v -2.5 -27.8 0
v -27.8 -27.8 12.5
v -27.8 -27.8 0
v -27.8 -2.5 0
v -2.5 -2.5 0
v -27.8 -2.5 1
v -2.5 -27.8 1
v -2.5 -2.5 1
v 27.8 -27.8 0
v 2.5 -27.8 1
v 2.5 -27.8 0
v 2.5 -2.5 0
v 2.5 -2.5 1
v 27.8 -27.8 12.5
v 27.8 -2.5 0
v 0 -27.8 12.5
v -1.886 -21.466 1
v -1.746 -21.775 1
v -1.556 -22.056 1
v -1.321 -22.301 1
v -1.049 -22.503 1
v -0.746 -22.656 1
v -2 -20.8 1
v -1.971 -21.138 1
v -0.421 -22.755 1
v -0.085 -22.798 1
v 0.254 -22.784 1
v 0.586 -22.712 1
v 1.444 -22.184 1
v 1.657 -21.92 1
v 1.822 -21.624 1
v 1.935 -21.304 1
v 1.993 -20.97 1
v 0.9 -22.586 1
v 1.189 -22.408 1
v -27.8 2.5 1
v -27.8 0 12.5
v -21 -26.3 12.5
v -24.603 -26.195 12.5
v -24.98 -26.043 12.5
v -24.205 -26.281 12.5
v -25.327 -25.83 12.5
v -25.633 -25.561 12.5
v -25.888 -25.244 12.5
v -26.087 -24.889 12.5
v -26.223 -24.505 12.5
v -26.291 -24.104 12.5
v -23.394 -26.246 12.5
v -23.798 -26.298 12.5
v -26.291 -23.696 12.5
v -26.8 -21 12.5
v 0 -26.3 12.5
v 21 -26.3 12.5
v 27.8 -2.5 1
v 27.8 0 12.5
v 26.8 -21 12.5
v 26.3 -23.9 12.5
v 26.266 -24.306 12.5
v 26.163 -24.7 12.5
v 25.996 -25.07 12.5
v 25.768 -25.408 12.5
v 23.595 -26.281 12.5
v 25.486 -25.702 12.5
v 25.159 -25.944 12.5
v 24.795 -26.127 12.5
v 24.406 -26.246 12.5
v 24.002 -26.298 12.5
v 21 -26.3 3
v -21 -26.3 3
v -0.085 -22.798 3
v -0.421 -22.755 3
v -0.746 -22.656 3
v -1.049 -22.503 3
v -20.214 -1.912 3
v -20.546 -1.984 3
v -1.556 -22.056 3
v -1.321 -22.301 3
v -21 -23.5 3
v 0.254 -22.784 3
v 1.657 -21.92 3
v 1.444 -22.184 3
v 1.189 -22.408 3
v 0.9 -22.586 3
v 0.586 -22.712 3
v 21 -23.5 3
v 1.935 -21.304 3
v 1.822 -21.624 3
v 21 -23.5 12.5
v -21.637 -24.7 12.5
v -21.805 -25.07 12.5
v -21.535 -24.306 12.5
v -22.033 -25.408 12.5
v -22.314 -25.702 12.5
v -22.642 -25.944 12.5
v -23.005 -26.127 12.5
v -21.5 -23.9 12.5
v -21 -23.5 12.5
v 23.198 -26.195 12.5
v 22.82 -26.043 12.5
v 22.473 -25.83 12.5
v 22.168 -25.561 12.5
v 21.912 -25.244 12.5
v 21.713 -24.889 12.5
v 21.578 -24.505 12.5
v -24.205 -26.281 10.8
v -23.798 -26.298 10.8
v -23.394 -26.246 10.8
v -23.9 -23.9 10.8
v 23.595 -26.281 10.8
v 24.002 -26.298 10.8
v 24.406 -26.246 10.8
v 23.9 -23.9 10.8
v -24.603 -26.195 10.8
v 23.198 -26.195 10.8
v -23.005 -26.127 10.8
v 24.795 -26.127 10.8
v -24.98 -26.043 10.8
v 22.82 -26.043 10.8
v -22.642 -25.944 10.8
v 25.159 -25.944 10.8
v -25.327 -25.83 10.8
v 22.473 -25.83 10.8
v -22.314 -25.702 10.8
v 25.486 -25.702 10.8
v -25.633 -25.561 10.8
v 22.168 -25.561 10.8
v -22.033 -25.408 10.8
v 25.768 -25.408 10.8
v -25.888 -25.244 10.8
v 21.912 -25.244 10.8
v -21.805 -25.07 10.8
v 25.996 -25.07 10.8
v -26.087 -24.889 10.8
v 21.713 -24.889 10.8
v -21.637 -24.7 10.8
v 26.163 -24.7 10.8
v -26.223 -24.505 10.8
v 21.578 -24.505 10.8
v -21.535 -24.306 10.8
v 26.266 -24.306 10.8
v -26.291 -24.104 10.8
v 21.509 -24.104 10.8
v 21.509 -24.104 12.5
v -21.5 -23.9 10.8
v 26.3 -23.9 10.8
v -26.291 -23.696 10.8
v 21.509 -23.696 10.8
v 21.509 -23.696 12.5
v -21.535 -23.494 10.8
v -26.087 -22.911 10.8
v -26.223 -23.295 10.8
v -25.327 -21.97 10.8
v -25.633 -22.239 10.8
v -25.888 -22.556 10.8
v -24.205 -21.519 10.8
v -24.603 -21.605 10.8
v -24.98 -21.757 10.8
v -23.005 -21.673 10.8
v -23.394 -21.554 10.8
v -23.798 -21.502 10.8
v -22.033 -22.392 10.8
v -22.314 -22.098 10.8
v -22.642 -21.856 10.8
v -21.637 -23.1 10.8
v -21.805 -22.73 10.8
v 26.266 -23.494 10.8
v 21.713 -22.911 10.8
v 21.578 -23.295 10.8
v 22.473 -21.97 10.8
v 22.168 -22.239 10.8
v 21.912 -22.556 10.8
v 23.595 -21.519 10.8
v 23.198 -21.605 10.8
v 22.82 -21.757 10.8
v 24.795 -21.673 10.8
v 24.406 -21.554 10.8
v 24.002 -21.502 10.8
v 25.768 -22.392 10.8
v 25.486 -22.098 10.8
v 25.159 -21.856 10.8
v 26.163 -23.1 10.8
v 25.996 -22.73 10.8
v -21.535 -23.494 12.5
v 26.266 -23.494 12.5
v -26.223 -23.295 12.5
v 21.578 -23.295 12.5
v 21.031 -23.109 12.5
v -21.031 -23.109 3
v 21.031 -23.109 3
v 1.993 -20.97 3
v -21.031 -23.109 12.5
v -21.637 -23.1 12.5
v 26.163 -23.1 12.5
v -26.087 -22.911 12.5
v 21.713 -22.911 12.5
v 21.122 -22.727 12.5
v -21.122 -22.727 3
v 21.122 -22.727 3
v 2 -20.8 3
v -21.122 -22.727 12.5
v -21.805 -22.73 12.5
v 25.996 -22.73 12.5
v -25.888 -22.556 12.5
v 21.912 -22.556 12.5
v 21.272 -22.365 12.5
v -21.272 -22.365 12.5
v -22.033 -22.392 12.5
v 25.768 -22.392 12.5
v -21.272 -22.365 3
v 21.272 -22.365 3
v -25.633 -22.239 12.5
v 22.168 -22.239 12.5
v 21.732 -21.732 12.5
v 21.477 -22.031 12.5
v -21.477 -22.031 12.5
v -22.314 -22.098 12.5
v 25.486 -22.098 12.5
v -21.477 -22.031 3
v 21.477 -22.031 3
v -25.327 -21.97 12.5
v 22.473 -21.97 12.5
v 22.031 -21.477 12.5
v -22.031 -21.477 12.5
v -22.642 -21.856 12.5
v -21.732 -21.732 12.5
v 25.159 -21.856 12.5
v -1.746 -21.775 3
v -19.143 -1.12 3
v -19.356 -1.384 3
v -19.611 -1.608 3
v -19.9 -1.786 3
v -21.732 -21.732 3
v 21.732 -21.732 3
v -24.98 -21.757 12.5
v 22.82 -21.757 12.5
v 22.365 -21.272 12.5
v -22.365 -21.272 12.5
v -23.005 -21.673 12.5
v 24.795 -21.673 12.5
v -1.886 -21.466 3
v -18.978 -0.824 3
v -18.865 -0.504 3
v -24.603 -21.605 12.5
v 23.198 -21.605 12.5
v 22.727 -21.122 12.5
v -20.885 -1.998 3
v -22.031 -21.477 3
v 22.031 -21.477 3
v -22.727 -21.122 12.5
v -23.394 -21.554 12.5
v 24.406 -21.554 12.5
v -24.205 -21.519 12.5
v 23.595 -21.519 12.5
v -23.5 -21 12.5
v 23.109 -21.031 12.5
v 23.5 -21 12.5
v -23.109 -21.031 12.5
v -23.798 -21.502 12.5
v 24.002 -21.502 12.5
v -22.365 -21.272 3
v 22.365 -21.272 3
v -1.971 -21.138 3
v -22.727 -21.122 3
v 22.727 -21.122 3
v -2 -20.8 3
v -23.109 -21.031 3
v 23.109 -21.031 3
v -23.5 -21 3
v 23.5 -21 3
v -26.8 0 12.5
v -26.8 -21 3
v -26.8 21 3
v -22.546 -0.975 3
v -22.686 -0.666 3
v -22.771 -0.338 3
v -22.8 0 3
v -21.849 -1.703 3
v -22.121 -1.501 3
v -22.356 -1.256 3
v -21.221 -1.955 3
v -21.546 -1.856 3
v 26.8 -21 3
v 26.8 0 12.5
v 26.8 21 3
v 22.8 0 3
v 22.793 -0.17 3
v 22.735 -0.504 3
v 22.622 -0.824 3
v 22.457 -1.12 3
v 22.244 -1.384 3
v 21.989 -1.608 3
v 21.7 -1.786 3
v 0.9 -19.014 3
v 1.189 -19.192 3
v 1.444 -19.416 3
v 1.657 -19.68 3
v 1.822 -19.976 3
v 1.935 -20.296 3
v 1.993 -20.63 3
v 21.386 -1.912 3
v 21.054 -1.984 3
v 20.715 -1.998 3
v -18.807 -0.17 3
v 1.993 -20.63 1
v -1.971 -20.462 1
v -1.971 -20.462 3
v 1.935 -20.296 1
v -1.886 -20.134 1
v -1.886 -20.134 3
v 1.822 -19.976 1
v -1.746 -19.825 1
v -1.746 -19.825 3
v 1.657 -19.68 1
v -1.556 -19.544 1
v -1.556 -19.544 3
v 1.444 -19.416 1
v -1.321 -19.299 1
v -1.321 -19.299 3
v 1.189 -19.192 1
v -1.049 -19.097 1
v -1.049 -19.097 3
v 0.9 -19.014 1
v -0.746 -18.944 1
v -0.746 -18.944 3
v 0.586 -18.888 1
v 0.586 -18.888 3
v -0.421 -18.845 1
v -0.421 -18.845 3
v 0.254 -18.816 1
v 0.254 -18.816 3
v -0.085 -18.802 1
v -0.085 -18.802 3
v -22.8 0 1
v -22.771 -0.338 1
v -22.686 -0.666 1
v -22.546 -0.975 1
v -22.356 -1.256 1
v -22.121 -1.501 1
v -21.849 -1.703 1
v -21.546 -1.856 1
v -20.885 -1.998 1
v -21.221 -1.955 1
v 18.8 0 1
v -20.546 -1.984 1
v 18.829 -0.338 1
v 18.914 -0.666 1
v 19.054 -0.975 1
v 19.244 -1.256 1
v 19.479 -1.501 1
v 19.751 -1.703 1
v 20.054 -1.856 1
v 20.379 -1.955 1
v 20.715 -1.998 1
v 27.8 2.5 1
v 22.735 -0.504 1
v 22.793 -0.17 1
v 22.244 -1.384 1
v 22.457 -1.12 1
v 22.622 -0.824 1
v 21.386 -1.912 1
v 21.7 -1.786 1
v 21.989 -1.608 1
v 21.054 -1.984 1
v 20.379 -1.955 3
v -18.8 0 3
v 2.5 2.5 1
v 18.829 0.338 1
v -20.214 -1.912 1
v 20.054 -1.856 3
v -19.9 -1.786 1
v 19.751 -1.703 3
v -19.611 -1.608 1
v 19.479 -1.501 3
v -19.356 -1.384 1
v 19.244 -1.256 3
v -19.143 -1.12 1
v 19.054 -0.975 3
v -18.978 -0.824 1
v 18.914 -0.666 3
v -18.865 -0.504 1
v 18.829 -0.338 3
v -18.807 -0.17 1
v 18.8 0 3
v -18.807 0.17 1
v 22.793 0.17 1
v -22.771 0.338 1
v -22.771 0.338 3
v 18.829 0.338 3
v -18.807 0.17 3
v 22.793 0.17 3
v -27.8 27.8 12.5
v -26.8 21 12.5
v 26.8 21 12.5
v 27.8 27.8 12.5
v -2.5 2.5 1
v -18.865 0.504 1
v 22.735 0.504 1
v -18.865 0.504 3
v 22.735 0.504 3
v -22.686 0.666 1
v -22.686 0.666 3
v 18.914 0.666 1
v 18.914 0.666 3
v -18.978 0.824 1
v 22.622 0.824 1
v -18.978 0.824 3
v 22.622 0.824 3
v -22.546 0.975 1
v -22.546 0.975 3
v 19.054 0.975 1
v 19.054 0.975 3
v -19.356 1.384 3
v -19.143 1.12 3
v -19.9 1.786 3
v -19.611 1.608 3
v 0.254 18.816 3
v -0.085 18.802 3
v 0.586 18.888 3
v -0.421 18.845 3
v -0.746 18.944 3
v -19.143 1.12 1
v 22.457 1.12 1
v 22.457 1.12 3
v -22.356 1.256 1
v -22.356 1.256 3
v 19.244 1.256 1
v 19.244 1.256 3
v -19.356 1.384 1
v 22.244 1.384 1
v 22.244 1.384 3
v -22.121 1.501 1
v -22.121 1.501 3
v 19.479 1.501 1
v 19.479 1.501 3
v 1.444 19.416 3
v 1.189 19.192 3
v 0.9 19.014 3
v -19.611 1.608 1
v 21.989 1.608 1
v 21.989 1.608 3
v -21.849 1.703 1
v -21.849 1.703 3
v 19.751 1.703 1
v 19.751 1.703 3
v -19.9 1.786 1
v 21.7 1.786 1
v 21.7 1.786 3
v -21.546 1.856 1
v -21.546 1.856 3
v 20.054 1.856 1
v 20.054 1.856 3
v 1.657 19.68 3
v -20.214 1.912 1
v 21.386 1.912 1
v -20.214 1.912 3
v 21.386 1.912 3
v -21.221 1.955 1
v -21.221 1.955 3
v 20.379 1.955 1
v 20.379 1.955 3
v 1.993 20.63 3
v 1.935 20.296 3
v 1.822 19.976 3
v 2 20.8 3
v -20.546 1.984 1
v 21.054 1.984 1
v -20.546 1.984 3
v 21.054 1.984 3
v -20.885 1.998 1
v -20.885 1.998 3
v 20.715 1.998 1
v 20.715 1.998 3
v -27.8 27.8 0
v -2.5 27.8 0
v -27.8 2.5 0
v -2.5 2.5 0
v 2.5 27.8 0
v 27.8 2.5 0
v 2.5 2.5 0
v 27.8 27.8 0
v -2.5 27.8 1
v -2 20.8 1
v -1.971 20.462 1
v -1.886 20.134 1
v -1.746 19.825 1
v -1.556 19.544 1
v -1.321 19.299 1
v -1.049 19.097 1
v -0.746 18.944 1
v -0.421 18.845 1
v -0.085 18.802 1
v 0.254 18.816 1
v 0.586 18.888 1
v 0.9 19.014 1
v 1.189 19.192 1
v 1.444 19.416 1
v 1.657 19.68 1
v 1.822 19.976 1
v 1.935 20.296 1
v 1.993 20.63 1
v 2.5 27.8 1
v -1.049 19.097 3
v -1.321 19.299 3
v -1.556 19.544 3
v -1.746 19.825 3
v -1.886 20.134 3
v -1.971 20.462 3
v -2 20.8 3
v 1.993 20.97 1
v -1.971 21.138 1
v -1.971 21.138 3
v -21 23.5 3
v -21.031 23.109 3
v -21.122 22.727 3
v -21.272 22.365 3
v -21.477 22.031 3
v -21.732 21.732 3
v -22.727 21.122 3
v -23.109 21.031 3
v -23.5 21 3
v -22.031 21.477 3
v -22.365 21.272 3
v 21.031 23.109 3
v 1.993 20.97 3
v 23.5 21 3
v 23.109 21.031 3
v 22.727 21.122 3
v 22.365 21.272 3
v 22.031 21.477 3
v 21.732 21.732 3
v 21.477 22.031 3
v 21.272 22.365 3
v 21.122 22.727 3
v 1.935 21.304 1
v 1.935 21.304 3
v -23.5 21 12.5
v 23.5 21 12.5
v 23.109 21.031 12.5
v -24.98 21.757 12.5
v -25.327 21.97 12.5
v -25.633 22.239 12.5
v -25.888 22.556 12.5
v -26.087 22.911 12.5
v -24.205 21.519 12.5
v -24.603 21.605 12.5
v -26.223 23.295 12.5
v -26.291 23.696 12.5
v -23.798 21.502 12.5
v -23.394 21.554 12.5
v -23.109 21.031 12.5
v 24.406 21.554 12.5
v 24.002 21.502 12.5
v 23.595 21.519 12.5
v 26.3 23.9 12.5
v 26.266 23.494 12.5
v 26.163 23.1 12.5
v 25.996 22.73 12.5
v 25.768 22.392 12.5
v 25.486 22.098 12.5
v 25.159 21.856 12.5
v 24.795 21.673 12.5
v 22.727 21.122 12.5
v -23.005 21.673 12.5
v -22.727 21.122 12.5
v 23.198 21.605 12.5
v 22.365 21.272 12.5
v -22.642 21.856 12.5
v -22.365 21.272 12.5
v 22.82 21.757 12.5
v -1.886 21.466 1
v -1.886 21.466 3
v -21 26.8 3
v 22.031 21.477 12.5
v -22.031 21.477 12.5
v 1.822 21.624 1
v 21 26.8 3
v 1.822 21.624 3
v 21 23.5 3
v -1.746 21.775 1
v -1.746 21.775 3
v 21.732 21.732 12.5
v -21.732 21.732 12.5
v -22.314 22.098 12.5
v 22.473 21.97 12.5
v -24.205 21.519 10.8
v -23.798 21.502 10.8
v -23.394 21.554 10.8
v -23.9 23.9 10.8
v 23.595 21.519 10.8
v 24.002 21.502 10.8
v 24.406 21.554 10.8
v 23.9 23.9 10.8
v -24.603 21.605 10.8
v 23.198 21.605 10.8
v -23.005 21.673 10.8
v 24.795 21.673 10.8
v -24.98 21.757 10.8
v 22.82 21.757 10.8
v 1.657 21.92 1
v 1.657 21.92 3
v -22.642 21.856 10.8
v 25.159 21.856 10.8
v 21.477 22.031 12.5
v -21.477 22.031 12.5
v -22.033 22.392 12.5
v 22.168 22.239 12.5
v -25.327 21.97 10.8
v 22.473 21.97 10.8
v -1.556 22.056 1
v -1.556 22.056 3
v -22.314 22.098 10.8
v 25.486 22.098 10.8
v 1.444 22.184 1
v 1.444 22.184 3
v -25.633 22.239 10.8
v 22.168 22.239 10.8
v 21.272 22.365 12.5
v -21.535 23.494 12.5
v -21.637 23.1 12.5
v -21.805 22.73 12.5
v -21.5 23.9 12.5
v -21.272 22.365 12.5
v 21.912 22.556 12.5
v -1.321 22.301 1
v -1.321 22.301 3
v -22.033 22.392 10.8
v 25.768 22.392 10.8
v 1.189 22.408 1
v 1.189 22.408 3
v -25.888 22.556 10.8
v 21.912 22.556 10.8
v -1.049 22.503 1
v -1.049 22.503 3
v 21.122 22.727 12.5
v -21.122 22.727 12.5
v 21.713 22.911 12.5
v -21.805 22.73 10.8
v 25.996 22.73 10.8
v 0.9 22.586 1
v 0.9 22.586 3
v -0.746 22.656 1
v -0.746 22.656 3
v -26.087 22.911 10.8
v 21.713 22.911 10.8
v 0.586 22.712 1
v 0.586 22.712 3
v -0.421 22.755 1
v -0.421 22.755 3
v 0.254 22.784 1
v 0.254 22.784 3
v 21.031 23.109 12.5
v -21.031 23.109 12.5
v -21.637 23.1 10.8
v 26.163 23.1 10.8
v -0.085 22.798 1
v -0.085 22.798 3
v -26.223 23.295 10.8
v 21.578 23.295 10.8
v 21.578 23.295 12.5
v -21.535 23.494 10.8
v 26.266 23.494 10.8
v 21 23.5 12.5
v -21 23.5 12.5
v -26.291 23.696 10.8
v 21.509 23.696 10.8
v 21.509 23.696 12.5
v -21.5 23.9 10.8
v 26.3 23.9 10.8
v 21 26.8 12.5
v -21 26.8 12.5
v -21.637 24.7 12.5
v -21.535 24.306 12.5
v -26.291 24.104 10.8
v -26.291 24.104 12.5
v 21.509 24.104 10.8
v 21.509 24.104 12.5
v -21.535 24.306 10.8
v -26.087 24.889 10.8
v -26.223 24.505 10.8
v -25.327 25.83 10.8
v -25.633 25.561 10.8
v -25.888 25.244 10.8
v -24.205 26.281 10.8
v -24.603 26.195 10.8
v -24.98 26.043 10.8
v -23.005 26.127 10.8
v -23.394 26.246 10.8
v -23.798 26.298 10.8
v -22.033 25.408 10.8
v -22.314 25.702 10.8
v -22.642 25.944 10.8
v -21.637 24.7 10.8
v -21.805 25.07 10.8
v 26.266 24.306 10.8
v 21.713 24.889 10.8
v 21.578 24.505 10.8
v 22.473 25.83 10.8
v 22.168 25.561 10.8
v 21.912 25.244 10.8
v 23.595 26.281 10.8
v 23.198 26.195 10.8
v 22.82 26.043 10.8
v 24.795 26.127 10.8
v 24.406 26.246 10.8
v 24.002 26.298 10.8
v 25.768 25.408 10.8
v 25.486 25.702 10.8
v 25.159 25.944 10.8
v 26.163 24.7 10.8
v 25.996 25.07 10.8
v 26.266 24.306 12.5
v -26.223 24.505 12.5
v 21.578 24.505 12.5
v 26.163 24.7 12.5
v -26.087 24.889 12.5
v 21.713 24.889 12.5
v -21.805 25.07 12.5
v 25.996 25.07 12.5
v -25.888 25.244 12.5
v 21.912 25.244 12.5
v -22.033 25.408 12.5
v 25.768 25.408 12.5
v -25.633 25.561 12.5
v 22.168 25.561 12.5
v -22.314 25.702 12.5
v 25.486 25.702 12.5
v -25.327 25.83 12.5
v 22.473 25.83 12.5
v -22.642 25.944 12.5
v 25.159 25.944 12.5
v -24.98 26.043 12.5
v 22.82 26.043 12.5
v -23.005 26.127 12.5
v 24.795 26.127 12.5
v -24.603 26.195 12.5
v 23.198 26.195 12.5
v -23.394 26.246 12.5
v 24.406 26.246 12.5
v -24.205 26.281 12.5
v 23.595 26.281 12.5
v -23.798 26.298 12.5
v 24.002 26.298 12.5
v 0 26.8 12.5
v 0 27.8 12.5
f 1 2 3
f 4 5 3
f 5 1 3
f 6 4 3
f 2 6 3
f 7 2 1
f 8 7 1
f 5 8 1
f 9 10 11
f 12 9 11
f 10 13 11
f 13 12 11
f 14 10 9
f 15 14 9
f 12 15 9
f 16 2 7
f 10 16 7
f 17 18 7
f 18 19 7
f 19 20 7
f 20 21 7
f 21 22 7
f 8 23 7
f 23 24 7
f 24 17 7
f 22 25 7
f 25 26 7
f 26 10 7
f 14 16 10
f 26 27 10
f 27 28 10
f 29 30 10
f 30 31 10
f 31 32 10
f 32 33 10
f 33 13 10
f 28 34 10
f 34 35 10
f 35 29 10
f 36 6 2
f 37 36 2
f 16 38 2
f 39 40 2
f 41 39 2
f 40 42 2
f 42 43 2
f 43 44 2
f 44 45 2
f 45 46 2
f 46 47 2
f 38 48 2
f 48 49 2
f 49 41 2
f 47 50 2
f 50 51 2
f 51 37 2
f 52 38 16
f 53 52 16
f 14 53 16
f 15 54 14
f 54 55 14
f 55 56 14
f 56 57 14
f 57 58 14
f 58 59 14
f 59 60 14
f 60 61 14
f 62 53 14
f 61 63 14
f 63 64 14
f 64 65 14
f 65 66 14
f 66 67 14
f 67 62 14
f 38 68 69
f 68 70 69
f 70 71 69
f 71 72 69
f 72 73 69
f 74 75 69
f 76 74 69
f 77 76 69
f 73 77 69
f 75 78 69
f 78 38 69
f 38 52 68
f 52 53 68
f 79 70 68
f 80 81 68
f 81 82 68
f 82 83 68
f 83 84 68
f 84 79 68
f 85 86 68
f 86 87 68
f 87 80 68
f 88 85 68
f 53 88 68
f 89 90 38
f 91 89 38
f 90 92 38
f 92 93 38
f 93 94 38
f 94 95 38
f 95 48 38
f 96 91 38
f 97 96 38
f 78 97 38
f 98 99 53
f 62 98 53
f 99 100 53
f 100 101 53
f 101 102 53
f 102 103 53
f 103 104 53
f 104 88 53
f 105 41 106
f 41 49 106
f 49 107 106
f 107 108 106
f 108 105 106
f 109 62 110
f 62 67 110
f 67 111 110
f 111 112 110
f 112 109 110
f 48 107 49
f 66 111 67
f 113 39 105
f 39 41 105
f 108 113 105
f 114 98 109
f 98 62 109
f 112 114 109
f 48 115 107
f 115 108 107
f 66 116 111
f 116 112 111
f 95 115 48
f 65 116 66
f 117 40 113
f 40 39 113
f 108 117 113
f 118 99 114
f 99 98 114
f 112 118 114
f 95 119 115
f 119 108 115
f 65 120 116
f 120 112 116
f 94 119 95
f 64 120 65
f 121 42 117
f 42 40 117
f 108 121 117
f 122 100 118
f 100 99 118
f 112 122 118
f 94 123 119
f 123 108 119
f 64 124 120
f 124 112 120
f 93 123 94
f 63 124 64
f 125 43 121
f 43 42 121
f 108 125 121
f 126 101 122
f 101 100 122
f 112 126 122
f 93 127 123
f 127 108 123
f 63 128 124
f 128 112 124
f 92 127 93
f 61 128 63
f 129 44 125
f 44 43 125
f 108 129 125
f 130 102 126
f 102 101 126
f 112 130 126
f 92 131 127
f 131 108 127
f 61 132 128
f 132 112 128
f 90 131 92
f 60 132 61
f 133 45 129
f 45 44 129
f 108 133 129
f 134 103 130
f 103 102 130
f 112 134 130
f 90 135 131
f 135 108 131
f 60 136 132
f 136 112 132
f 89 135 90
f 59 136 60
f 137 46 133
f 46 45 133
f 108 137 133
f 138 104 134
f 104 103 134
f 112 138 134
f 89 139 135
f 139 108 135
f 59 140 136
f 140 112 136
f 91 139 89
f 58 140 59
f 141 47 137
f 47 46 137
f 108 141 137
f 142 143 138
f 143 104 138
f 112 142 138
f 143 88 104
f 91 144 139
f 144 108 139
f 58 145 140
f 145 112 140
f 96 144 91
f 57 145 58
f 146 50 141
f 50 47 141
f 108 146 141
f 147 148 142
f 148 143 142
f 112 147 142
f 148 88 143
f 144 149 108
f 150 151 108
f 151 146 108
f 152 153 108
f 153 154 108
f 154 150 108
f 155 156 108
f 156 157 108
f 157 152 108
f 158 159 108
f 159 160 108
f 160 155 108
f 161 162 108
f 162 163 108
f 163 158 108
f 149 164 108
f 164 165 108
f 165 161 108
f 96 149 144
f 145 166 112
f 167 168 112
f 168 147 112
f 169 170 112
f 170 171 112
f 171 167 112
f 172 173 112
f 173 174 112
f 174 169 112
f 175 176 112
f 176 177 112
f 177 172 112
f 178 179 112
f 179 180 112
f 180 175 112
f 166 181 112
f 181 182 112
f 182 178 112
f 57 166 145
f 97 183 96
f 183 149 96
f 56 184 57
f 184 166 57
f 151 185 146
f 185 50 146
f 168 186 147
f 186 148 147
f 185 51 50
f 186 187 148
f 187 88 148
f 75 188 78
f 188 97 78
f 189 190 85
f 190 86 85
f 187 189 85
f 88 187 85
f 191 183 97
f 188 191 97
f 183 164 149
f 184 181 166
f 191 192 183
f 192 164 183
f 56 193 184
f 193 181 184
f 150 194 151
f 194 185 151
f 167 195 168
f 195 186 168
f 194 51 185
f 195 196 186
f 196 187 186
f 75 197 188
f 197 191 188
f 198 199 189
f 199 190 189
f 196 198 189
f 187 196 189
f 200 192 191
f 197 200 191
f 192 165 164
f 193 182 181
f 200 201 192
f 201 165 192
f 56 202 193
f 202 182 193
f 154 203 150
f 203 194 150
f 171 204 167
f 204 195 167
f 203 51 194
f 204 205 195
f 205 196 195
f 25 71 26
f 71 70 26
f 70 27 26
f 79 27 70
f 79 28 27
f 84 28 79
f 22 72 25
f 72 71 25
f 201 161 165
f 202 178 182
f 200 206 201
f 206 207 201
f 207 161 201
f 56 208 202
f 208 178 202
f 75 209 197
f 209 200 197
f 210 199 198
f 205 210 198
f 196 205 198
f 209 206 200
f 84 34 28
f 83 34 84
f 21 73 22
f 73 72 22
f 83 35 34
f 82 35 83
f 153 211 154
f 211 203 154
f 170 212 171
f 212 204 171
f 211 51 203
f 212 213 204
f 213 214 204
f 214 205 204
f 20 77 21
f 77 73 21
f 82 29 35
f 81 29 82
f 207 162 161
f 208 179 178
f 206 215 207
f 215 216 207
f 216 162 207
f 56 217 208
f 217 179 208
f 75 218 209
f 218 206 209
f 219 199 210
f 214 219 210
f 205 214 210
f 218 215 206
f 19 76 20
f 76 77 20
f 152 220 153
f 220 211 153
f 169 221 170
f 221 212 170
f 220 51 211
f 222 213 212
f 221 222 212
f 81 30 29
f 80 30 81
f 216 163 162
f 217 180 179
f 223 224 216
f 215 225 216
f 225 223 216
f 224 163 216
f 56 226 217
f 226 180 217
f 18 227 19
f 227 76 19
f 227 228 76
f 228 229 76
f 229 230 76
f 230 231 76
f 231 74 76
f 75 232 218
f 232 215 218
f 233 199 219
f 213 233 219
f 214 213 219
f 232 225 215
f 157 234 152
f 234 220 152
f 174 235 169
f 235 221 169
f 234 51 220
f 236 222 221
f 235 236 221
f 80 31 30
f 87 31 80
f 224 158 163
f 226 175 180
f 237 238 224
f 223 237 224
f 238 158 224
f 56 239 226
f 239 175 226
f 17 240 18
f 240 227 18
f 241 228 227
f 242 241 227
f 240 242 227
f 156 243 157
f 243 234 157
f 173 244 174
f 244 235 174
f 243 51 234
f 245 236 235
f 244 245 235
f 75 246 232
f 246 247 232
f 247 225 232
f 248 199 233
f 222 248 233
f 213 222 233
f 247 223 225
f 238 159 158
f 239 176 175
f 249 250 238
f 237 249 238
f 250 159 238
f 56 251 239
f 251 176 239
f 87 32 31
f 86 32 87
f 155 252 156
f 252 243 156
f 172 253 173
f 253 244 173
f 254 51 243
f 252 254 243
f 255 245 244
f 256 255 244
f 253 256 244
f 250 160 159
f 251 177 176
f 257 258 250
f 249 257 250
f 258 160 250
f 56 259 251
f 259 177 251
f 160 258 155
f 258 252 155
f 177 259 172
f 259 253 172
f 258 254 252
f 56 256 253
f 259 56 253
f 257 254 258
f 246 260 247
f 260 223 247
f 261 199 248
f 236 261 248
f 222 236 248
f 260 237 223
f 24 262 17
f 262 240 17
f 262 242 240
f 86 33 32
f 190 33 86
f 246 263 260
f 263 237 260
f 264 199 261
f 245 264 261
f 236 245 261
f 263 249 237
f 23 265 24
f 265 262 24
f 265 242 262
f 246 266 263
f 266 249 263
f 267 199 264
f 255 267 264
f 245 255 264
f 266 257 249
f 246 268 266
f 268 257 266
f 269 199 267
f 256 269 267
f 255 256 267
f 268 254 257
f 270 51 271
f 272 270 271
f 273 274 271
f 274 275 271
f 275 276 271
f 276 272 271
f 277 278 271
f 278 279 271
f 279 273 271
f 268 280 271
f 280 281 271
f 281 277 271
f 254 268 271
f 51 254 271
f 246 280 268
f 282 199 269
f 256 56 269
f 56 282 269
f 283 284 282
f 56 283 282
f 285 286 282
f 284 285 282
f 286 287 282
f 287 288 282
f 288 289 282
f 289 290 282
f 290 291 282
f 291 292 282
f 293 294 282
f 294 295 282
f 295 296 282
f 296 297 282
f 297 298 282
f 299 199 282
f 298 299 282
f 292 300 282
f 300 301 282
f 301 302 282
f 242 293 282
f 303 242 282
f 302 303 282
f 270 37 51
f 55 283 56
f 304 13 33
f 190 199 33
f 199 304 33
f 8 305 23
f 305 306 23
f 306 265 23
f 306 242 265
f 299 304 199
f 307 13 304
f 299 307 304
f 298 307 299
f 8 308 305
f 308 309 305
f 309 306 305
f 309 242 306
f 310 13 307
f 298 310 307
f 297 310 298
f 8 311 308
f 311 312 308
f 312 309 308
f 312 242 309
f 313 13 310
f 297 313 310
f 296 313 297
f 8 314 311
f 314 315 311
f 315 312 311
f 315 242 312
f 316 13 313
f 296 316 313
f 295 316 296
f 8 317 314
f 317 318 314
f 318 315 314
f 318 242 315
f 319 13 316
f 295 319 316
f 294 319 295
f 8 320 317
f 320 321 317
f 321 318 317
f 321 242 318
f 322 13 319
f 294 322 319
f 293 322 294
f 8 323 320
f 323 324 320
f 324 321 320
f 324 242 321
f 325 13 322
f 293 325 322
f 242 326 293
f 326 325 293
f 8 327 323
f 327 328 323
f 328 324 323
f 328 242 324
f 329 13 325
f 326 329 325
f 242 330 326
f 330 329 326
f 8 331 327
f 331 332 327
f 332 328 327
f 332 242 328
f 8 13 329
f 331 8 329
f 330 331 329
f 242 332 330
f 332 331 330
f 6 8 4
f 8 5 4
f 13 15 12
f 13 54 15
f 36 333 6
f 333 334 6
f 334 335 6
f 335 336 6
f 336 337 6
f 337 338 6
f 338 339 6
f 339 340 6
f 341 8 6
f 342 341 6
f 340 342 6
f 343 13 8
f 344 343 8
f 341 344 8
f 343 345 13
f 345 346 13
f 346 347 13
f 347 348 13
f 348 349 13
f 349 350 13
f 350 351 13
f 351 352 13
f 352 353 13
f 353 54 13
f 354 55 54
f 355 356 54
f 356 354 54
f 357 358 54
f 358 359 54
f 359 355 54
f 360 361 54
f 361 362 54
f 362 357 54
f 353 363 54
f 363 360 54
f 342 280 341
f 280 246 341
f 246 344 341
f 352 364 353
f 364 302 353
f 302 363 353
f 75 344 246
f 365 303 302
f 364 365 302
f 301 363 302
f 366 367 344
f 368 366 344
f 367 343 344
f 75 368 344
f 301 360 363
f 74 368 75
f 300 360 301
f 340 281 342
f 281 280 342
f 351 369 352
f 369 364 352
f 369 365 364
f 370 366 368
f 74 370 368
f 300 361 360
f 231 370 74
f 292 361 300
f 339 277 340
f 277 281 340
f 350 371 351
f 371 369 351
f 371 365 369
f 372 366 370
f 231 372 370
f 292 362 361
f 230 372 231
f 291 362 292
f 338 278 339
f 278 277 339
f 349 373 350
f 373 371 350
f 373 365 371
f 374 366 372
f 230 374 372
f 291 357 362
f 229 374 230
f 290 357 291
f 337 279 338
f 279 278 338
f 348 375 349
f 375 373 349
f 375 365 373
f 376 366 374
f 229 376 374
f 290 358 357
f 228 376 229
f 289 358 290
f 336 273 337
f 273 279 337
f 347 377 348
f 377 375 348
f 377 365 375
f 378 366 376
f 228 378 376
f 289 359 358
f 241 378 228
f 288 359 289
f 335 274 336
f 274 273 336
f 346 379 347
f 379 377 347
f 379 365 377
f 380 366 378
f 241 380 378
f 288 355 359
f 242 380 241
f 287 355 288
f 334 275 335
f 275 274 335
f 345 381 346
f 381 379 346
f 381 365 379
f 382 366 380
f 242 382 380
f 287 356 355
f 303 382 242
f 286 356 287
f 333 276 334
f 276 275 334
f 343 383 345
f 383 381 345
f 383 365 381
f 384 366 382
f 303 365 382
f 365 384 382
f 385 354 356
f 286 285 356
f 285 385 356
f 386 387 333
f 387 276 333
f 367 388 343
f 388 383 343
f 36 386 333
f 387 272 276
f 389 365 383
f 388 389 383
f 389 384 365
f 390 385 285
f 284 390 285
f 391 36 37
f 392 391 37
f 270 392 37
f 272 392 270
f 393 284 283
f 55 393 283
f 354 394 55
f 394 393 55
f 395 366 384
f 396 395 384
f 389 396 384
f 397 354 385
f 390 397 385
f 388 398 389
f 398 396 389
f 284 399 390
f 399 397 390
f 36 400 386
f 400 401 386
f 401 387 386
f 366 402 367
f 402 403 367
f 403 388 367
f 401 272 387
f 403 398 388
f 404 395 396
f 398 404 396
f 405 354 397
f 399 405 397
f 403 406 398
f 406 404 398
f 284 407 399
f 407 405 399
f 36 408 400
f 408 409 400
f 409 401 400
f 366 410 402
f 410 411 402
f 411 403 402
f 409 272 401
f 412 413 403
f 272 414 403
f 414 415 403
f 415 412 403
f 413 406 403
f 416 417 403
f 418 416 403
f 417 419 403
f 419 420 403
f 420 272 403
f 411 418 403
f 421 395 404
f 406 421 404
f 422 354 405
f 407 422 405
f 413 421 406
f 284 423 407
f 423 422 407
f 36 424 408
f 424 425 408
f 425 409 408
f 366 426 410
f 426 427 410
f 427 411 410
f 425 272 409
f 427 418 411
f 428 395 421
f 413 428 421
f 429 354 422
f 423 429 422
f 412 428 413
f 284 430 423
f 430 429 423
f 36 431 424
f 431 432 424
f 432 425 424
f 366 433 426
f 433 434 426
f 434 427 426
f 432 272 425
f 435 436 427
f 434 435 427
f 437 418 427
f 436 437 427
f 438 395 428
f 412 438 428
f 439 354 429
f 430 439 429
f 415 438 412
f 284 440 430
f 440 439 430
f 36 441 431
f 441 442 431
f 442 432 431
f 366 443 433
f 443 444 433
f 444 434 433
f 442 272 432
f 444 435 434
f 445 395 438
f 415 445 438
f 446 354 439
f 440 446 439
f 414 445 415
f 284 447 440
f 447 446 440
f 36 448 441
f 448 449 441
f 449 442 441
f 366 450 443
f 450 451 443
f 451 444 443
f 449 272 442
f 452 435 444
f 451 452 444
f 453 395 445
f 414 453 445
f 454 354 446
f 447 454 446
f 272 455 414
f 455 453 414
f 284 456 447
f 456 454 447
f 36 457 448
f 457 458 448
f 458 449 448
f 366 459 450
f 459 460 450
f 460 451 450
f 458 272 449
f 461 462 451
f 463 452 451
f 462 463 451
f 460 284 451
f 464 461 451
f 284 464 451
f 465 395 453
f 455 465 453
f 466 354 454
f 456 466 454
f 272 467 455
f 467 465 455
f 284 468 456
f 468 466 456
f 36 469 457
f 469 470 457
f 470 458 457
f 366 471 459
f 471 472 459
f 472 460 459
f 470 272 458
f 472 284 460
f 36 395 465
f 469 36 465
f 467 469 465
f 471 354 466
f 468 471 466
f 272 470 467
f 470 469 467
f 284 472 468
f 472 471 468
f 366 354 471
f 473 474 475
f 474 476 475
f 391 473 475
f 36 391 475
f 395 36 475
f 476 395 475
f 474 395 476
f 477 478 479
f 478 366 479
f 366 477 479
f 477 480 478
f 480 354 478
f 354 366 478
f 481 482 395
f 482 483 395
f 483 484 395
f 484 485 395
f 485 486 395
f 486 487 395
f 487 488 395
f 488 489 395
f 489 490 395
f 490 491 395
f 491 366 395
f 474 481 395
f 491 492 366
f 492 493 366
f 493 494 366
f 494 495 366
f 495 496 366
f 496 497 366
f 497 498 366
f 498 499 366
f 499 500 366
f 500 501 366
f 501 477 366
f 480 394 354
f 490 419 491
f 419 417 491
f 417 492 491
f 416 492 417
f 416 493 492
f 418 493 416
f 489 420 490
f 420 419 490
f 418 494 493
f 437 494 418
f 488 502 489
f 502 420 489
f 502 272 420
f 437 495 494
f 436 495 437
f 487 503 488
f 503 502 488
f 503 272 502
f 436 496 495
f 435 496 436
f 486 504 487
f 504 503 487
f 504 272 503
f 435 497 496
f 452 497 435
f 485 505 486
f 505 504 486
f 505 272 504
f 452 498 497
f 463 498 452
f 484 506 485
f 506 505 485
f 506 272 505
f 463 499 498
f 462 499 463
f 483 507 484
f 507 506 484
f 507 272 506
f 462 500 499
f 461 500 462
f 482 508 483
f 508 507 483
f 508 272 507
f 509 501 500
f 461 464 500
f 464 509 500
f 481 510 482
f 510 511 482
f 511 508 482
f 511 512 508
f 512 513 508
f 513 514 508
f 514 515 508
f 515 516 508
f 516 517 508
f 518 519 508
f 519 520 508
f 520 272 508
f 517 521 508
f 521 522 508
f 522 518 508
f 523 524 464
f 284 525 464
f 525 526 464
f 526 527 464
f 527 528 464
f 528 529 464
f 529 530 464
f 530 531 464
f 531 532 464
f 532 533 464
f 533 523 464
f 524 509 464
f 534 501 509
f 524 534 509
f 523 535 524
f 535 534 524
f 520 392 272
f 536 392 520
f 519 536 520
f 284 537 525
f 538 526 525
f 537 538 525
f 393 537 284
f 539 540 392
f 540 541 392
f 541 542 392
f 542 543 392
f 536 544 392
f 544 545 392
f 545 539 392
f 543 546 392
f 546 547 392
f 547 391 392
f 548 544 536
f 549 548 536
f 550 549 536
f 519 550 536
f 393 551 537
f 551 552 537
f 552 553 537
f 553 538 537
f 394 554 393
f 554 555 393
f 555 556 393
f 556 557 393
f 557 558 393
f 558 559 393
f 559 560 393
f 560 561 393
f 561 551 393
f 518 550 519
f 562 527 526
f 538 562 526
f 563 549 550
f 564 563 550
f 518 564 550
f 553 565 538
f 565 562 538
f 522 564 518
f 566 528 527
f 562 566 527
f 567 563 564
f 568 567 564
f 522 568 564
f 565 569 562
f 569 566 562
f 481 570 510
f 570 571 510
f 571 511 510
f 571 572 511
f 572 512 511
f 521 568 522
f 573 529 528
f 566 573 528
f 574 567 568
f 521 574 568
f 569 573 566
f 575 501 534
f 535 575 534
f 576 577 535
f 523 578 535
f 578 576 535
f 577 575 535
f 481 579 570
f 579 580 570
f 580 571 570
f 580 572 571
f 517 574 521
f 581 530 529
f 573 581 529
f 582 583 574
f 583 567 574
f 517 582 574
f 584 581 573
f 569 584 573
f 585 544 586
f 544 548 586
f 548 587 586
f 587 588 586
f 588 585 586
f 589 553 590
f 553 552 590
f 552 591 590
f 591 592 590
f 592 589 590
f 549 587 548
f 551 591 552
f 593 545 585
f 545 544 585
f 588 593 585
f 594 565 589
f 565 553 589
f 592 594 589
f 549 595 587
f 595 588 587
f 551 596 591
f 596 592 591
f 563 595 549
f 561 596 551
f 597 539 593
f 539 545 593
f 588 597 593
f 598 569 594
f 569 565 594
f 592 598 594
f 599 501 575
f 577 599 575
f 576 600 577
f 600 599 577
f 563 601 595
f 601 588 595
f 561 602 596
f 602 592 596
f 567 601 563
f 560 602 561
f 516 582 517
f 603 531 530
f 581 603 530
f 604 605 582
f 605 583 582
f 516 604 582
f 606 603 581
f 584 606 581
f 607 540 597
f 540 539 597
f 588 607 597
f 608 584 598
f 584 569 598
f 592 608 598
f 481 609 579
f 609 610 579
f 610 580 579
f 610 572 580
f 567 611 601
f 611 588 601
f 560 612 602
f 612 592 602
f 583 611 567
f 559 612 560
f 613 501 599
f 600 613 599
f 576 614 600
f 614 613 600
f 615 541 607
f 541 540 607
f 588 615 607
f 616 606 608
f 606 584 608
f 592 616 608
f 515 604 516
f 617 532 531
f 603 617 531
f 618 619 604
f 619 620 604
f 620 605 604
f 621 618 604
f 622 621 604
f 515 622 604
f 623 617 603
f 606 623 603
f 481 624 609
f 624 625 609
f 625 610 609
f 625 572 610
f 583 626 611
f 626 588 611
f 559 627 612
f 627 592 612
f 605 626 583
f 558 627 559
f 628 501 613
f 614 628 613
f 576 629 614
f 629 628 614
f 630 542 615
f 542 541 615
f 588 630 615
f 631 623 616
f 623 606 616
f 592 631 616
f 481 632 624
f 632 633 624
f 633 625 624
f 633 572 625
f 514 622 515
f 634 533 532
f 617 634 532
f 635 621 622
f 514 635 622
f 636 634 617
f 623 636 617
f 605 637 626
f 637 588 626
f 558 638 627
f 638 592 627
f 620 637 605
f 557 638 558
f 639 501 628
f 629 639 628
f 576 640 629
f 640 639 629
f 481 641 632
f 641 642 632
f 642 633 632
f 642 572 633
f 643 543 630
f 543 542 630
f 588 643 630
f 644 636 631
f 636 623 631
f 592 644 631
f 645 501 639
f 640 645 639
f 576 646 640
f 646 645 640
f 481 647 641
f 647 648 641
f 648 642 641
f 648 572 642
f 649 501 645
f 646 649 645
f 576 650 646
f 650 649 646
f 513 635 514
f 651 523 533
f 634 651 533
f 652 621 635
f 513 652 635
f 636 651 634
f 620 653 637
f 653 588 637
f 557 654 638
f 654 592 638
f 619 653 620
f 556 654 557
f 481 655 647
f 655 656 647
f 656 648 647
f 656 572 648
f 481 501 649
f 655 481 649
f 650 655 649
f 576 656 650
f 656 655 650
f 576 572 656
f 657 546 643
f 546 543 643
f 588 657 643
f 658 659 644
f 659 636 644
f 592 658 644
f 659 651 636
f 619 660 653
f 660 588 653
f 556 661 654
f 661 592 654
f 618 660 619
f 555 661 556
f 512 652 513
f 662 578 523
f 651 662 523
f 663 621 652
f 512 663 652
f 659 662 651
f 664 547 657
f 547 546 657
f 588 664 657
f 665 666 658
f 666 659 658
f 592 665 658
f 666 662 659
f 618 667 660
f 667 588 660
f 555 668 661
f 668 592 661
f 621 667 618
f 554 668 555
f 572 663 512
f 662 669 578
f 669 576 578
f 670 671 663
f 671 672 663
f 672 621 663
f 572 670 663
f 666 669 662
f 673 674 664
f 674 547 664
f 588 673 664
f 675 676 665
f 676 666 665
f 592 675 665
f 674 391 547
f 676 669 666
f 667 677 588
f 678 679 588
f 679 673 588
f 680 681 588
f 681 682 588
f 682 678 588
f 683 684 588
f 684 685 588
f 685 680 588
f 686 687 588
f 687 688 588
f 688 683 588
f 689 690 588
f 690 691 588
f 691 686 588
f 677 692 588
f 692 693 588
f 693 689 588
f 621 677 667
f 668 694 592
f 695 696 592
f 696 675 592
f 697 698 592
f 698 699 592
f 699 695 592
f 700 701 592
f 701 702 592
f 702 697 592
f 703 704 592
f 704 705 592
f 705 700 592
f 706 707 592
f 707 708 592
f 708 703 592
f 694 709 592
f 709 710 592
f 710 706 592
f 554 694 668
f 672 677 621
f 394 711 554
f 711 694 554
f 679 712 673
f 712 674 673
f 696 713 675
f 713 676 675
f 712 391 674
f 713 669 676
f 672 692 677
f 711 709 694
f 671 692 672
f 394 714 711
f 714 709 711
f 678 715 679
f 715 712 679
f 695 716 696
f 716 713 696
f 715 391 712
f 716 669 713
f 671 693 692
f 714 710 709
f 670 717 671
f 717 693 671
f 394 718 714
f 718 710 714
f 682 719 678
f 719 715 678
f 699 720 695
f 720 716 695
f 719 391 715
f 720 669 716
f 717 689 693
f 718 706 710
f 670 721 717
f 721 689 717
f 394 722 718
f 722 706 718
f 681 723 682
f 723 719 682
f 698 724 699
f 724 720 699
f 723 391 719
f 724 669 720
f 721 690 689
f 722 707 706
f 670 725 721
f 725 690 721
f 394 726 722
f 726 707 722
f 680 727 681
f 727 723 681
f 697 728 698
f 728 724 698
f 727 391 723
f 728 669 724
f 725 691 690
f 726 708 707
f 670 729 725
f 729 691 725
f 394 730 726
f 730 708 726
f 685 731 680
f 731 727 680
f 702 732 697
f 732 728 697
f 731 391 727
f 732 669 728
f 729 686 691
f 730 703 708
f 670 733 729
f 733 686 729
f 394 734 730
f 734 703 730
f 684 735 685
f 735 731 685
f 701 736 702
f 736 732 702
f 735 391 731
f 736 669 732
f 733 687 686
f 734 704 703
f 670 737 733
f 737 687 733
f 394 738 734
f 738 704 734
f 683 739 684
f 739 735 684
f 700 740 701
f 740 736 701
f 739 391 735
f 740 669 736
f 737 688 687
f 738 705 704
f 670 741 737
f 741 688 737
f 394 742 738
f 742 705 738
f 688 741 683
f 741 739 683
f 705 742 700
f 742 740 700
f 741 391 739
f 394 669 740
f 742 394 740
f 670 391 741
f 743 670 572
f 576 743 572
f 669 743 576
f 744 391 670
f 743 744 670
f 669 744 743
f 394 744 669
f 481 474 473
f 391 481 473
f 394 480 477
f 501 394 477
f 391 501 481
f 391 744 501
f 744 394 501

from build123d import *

# Parameters (mm, degrees)
SKICA1_W                 = 55.6
SKICA1_H                 = 55.6
P_IDAT_VYSUNUT_M2_DEPTH  = 3
SKICA5_W                 = 5
SKICA5_H                 = 55.6
SKICA5_W_2               = 55.6
SKICA5_H_2               = 5
ODEBRAT_VYSUNUT_M3_DEPTH = 1
SKICA14_W                = 53.6
SKICA14_H                = 1.5
P_IDAT_VYSUNUT_M9_DEPTH  = 9.5
SKICA17_R                = 2
ODEBRAT_VYSUNUT_M8_DEPTH = 4
SKICA19_W                = 6.8
SKICA19_H                = 6.8
P_IDAT_VYSUNUT_M10_DEPTH = 12.5
SKICA20_R                = 2.4
ODEBRAT_VYSUNUT_M9_DEPTH = 1.7
ZAOBLIT1_R               = 2.5


with BuildPart() as part:
    # Skica1 → Přidat vysunutím2 (new body)
    with BuildSketch(Plane.XY):
        Rectangle(SKICA1_W, SKICA1_H)
    extrude(amount=P_IDAT_VYSUNUT_M2_DEPTH)

    # Skica5 → Odebrat vysunutím3 (cut)
    with BuildSketch(Plane(origin=(0, 0, 0), x_dir=(-1, 0, 0), z_dir=(0, 0, -1))):
        Rectangle(SKICA5_W, SKICA5_H)
        Rectangle(SKICA5_W_2, SKICA5_H_2)
    extrude(amount=-ODEBRAT_VYSUNUT_M3_DEPTH, mode=Mode.SUBTRACT)

    # Skica14 → Přidat vysunutím9 (add)
    with BuildSketch(Plane.XY.offset(3)):
        Polygon((27.8, 27.8), (-27.8, 27.8), (-27.8, -27.8), (-26.8, -27.8), (-26.8, -26.8), (-26.8, -26.3), (-26.8, 26.8), (26.8, 26.8), (26.8, -26.3), (26.8, -27.8), (27.8, -27.8), align=None)
        with Locations((0, -27.05)):
            Rectangle(SKICA14_W, SKICA14_H)
    extrude(amount=P_IDAT_VYSUNUT_M9_DEPTH)

    # Skica17 → Odebrat vysunutím8 (cut)
    with BuildSketch(Plane(origin=(0, 0, 1), x_dir=(-1, 0, 0), z_dir=(0, 0, -1))):
        with Locations((20.8, 0)):
            Circle(SKICA17_R)
        with Locations((-20.8, 0)):
            Circle(SKICA17_R)
        with Locations((0, 20.8)):
            Circle(SKICA17_R)
        with Locations((0, -20.8)):
            Circle(SKICA17_R)
    extrude(amount=-ODEBRAT_VYSUNUT_M8_DEPTH, mode=Mode.SUBTRACT)

    # Skica19 → Přidat vysunutím10 (add)
    with BuildSketch(Plane(origin=(0, 0, 0), x_dir=(-1, 0, 0), z_dir=(0, 0, -1))):
        with Locations((-24.4, 24.4)):
            Rectangle(SKICA19_W, SKICA19_H)
        with Locations((24.4, 24.4)):
            Rectangle(SKICA19_W, SKICA19_H)
        with Locations((-24.4, -24.4)):
            Rectangle(SKICA19_W, SKICA19_H)
        with Locations((24.4, -24.4)):
            Rectangle(SKICA19_W, SKICA19_H)
    extrude(amount=-P_IDAT_VYSUNUT_M10_DEPTH)

    # Skica20 → Odebrat vysunutím9 (cut)
    with BuildSketch(Plane.XY.offset(12.5)):
        with Locations((-23.9, -23.9)):
            Circle(SKICA20_R)
        with Locations((-23.9, 23.9)):
            Circle(SKICA20_R)
        with Locations((23.900280565, 23.9)):
            Circle(SKICA20_R)
        with Locations((23.900280565, -23.9)):
            Circle(SKICA20_R)
    extrude(amount=-ODEBRAT_VYSUNUT_M9_DEPTH, mode=Mode.SUBTRACT)

    # Zaoblit1
    zaoblit1_edges = [part.edges().sort_by_distance(p)[0] for p in [
        (21, 21, 7.75),
        (-21, 21, 7.75),
        (21, -21, 7.75),
        (-21, -21, 7.75),
    ]]
    fillet(zaoblit1_edges, radius=ZAOBLIT1_R)


solid = part.part
